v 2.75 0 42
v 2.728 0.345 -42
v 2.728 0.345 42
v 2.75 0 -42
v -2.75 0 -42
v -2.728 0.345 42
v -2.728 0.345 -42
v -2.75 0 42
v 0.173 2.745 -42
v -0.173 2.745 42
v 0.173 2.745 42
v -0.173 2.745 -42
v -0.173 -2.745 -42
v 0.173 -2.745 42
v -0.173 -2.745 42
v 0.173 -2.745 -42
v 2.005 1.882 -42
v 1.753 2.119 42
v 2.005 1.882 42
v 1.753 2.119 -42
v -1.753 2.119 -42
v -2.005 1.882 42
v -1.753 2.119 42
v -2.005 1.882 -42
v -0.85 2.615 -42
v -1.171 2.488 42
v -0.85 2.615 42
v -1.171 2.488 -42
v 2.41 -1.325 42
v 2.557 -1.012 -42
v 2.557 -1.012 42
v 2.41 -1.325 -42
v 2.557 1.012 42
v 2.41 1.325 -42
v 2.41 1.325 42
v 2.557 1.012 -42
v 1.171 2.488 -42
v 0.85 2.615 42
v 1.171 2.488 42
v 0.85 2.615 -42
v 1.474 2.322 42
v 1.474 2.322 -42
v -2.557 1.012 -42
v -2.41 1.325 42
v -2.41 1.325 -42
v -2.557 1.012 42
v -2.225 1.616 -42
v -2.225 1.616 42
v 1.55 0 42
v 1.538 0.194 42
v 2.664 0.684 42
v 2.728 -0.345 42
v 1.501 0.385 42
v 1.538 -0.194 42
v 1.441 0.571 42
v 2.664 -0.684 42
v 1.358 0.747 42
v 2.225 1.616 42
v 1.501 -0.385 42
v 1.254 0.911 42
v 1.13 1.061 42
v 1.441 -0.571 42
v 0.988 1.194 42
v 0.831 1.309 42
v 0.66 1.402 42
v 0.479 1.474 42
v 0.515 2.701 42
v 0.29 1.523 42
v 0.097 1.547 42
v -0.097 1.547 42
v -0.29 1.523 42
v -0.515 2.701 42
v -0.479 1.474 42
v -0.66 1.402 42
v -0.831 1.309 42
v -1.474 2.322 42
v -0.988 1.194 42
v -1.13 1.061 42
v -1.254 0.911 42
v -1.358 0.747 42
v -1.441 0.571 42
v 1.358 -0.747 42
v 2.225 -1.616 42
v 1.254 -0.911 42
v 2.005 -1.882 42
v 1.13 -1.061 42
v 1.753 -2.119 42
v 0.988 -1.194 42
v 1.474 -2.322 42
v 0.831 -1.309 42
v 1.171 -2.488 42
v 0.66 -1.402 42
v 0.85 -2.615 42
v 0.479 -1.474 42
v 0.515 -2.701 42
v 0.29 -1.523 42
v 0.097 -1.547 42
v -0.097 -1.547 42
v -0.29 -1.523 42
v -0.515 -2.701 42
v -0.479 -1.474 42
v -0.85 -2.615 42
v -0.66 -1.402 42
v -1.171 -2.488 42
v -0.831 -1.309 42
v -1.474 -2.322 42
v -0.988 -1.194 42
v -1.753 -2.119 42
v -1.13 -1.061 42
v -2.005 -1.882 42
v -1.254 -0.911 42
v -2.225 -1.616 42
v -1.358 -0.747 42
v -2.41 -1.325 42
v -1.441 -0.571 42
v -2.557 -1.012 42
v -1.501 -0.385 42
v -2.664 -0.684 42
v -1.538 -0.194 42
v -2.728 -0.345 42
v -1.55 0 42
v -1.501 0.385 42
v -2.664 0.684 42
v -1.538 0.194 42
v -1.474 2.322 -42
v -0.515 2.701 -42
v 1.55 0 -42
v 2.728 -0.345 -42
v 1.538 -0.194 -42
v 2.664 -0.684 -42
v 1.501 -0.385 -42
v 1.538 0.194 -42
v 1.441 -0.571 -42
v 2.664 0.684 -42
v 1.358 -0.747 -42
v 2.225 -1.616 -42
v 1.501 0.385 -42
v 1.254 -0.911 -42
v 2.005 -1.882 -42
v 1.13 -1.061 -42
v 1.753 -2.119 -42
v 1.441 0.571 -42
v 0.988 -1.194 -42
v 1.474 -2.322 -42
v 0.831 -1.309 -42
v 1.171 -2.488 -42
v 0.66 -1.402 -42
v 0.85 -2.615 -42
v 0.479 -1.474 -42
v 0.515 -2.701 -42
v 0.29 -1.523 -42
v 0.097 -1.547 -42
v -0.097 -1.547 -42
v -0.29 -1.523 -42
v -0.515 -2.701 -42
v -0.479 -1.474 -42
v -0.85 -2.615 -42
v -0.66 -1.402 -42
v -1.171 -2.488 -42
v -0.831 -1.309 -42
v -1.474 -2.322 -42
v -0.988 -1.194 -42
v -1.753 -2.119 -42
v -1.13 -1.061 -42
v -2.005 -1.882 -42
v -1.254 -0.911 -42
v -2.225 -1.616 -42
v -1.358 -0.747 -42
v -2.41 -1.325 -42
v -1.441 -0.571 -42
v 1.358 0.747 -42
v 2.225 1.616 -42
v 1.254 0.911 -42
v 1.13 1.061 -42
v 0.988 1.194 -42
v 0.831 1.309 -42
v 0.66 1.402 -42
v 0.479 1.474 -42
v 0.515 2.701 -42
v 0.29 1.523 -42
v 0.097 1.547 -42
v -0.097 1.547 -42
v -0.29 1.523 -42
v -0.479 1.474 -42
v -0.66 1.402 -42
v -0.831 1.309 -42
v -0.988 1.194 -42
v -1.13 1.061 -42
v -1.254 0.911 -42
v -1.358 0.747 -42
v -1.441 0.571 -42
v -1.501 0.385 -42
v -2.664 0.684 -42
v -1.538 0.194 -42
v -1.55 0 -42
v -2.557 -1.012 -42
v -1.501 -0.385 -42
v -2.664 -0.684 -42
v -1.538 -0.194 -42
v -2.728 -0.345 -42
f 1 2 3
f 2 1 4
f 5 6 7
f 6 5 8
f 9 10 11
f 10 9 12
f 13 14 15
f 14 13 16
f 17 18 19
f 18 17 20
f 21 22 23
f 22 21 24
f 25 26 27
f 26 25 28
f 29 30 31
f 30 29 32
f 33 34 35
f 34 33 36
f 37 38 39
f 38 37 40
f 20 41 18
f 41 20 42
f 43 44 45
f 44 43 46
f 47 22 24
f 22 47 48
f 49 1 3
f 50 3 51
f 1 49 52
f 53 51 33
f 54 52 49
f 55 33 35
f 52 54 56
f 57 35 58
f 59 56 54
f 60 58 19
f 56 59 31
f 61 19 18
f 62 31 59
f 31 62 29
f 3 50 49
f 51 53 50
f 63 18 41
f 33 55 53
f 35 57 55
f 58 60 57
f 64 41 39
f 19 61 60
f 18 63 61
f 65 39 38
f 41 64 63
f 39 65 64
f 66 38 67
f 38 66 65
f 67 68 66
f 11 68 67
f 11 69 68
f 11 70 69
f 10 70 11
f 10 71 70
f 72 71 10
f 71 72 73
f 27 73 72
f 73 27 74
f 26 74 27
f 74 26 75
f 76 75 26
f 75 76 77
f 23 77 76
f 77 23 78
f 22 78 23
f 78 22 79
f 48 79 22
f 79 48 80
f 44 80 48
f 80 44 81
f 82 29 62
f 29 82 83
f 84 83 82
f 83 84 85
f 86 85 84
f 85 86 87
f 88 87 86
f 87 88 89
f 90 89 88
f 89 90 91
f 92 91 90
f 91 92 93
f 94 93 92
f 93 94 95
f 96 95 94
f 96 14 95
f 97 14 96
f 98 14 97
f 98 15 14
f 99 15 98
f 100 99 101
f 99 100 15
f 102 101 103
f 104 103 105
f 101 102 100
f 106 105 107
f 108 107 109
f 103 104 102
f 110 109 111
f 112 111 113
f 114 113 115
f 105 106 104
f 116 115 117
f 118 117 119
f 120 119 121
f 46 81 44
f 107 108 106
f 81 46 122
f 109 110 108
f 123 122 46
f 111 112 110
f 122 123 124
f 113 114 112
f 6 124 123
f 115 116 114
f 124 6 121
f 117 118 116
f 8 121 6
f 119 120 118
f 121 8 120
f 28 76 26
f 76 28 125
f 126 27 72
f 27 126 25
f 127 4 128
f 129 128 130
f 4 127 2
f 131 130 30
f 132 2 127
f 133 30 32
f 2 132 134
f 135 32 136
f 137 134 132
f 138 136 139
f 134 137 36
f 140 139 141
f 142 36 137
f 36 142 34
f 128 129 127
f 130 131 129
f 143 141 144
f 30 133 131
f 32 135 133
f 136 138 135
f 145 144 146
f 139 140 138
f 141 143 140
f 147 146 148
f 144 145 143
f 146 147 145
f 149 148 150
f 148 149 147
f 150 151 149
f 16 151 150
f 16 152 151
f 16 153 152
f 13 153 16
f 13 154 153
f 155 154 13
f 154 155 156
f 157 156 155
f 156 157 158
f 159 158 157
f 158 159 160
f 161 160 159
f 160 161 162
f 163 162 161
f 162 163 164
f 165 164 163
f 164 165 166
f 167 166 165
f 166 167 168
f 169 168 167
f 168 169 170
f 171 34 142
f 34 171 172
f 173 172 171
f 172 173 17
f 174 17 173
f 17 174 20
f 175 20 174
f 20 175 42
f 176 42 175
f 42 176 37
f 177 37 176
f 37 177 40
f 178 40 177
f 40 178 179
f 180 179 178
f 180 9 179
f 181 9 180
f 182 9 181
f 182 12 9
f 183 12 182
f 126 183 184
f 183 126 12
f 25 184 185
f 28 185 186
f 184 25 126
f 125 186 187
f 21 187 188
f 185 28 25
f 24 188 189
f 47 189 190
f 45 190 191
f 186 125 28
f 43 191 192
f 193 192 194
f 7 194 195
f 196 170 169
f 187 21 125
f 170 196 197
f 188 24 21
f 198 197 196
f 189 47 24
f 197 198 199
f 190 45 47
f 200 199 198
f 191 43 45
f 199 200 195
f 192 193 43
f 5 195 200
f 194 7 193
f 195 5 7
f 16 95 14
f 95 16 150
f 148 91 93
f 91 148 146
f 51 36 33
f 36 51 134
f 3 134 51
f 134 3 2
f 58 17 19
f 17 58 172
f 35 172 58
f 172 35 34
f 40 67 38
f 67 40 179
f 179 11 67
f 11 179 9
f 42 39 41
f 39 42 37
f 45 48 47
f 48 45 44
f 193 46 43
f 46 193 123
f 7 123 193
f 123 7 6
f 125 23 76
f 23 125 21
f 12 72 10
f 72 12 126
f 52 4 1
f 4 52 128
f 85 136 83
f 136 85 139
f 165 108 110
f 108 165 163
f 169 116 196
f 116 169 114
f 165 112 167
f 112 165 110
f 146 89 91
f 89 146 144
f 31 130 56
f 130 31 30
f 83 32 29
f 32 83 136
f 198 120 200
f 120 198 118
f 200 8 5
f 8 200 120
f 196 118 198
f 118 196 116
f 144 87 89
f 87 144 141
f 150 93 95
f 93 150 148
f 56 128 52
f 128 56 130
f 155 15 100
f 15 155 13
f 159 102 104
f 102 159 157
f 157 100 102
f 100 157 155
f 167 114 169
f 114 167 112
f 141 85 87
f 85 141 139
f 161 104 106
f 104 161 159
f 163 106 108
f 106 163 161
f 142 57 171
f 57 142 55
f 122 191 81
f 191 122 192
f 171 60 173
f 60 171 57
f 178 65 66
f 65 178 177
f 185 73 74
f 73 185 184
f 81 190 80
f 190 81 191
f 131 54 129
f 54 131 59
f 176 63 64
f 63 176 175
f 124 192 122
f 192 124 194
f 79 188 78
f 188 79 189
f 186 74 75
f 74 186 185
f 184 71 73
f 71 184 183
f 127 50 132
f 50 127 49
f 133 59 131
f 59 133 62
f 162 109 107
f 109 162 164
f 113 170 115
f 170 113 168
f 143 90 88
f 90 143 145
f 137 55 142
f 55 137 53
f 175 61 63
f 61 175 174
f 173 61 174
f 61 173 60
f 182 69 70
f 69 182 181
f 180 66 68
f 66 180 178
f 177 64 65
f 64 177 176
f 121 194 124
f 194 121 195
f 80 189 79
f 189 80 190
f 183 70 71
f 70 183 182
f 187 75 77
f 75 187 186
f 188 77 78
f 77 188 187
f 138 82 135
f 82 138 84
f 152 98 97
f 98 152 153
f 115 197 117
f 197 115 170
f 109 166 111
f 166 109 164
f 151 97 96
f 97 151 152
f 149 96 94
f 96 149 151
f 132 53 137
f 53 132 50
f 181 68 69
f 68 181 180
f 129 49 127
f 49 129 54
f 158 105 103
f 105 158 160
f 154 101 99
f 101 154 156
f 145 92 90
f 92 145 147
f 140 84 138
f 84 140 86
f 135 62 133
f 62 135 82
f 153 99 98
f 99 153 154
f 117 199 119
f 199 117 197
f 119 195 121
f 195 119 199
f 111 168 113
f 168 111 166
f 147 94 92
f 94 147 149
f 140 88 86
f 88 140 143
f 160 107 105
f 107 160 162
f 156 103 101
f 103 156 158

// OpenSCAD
$fn = 50;


difference() {
	union() {
		translate(v = [0, 0, -42.0000000000]) {
			cylinder(h = 84, r = 2.7500000000);
		}
	}
	union() {
		translate(v = [0, 0, -100.0000000000]) {
			cylinder(h = 200, r = 1.5500000000);
		}
	}
}
